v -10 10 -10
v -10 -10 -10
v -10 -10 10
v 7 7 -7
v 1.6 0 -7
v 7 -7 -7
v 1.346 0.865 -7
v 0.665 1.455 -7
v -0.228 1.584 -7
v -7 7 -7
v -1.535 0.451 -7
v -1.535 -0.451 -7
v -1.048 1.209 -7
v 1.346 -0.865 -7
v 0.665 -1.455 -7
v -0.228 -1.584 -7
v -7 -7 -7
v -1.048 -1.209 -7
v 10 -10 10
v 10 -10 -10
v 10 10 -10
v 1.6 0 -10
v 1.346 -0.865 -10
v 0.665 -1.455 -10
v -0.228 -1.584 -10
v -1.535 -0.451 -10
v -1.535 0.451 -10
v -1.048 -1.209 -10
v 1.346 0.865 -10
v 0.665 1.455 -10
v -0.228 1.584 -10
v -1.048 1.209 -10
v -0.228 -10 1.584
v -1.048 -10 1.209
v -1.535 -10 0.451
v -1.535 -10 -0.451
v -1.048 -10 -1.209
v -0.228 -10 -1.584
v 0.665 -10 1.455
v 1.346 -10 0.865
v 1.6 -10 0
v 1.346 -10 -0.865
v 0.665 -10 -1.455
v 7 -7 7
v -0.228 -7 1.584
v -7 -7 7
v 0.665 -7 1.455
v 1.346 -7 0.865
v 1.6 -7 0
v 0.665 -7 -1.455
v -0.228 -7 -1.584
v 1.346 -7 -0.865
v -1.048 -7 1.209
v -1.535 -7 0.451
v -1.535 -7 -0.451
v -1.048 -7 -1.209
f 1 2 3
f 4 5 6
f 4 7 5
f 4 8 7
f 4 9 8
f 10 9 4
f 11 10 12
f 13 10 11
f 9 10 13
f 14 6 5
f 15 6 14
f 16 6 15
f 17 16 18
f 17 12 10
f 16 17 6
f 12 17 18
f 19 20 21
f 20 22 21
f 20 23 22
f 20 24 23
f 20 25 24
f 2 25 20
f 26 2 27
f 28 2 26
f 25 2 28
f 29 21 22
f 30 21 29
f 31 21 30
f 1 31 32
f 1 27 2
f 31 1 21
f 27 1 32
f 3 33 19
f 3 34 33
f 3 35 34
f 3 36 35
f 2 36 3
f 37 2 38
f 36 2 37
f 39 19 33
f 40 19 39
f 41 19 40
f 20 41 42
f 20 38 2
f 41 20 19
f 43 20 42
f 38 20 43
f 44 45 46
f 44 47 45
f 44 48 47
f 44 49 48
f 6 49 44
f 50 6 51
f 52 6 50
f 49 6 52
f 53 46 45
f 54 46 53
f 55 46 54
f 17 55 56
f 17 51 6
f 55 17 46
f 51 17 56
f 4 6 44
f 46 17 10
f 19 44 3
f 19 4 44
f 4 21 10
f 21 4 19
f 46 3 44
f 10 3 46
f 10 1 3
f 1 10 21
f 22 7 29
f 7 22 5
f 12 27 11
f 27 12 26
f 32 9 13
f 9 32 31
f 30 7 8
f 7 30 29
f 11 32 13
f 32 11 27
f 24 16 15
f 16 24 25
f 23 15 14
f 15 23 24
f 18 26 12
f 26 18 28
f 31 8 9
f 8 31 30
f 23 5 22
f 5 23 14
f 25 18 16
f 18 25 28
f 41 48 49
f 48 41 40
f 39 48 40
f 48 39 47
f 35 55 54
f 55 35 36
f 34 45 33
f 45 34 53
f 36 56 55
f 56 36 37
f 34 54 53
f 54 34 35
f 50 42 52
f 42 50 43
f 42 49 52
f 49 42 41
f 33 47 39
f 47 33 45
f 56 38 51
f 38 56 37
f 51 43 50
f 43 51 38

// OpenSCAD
// file: config.scad
//General Settings
play=0.2; //to make fittings (add to some holes if nessesary)
//circle resolution 
$fa = 3;
$fs = 1;//0.5;

aluminum = [0.9, 0.9, 0.9];
steel = [0.8, 0.8, 0.9];
wood="BurlyWood";

//ISO/DIN Parts 
//Kugellager
kugellager_d=5+play;
kugellager_h=2.5+play;

//Mutter M2
M2_nut_d=4.38+2*play;
M2_nut_w=4+2*play;
M2_nut_h=1.6+2*play;

//Mutter M3
M3_nut_d=6.01+2*play;
M3_nut_w=5.5+2*play;
M3_nut_h=2.4+2*play;

//Mutter M4
M4_nut_d=7.66+2*play;
M4_nut_w=7+2*play;
M4_nut_h=3.2+2*play;

//Mutter M5
M5_nut_d=9.23+2*play;
M5_nut_w=8+2*play;
M5_nut_h=4+2*play;


//Mutter M8
M8_nut_d=14.38+2*play;
M8_nut_w=13+2*play;
M8_nut_h=6.8+2*play;

//LMXXUU Linear Ball Bearing
LMXXUU_d=19;
LMXXUU_l=29;

//Pully 2.5
band_w=5;
band_b=2;
band_outer_d=13;
//Ballbearing opposit for pully
band_bb_id=5;
band_bb_od=11;
band_bb_w=4;

//Bearing
B608Z_od=22+2*play;
B608Z_id=8+2*play;
B608Z_isd=13;
B608Z_h=7;

//Nema17
nema17_od=42.3;
nema17_id=22+2*play;
nema17_screw_d=31;
nema17_l=48;

//Nema17
nema23_id=38.1+2*play;
nema23_screw_d=47.14;
// main file
include<config.scad>

module corner(h1=10,h2=10,d1=3+play,d2=3+play,s1=0,s2=0,)
{
    translate([0,-h1-s1,-h2-s2])
    difference()
    {
        union()
        {
            translate([-10,0,0])
            {
                cube([20,h1*2,3]);
                cube([20,3,h2*2]);
            }
            
            for(d=[1,-1])
            translate([-3/2+d*(10-3/2),0,0])
                cube([3,h1*2,h2*2]);
        }
        
        translate([-11,h1*2,0])
        rotate([atan(h1/h2),0,0])
            cube([22,sqrt(h1*h1+h2*h2),sqrt(h1*h1+h2*h2)*2]);
        
        //hole
        translate([0,h1+s1,-1])
            cylinder(h=5,d=d1);
        translate([0,4,h2+s2])
        rotate([90,0,0])
            cylinder(h=5,d=d2);
    }    
}

module corner2()
{
    translate([0,-10,0])
    rotate([0,0,180])
    translate([0,10,10])
        corner();
    translate([0,10,0])
    translate([0,10,10])
        corner();
}


corner();
